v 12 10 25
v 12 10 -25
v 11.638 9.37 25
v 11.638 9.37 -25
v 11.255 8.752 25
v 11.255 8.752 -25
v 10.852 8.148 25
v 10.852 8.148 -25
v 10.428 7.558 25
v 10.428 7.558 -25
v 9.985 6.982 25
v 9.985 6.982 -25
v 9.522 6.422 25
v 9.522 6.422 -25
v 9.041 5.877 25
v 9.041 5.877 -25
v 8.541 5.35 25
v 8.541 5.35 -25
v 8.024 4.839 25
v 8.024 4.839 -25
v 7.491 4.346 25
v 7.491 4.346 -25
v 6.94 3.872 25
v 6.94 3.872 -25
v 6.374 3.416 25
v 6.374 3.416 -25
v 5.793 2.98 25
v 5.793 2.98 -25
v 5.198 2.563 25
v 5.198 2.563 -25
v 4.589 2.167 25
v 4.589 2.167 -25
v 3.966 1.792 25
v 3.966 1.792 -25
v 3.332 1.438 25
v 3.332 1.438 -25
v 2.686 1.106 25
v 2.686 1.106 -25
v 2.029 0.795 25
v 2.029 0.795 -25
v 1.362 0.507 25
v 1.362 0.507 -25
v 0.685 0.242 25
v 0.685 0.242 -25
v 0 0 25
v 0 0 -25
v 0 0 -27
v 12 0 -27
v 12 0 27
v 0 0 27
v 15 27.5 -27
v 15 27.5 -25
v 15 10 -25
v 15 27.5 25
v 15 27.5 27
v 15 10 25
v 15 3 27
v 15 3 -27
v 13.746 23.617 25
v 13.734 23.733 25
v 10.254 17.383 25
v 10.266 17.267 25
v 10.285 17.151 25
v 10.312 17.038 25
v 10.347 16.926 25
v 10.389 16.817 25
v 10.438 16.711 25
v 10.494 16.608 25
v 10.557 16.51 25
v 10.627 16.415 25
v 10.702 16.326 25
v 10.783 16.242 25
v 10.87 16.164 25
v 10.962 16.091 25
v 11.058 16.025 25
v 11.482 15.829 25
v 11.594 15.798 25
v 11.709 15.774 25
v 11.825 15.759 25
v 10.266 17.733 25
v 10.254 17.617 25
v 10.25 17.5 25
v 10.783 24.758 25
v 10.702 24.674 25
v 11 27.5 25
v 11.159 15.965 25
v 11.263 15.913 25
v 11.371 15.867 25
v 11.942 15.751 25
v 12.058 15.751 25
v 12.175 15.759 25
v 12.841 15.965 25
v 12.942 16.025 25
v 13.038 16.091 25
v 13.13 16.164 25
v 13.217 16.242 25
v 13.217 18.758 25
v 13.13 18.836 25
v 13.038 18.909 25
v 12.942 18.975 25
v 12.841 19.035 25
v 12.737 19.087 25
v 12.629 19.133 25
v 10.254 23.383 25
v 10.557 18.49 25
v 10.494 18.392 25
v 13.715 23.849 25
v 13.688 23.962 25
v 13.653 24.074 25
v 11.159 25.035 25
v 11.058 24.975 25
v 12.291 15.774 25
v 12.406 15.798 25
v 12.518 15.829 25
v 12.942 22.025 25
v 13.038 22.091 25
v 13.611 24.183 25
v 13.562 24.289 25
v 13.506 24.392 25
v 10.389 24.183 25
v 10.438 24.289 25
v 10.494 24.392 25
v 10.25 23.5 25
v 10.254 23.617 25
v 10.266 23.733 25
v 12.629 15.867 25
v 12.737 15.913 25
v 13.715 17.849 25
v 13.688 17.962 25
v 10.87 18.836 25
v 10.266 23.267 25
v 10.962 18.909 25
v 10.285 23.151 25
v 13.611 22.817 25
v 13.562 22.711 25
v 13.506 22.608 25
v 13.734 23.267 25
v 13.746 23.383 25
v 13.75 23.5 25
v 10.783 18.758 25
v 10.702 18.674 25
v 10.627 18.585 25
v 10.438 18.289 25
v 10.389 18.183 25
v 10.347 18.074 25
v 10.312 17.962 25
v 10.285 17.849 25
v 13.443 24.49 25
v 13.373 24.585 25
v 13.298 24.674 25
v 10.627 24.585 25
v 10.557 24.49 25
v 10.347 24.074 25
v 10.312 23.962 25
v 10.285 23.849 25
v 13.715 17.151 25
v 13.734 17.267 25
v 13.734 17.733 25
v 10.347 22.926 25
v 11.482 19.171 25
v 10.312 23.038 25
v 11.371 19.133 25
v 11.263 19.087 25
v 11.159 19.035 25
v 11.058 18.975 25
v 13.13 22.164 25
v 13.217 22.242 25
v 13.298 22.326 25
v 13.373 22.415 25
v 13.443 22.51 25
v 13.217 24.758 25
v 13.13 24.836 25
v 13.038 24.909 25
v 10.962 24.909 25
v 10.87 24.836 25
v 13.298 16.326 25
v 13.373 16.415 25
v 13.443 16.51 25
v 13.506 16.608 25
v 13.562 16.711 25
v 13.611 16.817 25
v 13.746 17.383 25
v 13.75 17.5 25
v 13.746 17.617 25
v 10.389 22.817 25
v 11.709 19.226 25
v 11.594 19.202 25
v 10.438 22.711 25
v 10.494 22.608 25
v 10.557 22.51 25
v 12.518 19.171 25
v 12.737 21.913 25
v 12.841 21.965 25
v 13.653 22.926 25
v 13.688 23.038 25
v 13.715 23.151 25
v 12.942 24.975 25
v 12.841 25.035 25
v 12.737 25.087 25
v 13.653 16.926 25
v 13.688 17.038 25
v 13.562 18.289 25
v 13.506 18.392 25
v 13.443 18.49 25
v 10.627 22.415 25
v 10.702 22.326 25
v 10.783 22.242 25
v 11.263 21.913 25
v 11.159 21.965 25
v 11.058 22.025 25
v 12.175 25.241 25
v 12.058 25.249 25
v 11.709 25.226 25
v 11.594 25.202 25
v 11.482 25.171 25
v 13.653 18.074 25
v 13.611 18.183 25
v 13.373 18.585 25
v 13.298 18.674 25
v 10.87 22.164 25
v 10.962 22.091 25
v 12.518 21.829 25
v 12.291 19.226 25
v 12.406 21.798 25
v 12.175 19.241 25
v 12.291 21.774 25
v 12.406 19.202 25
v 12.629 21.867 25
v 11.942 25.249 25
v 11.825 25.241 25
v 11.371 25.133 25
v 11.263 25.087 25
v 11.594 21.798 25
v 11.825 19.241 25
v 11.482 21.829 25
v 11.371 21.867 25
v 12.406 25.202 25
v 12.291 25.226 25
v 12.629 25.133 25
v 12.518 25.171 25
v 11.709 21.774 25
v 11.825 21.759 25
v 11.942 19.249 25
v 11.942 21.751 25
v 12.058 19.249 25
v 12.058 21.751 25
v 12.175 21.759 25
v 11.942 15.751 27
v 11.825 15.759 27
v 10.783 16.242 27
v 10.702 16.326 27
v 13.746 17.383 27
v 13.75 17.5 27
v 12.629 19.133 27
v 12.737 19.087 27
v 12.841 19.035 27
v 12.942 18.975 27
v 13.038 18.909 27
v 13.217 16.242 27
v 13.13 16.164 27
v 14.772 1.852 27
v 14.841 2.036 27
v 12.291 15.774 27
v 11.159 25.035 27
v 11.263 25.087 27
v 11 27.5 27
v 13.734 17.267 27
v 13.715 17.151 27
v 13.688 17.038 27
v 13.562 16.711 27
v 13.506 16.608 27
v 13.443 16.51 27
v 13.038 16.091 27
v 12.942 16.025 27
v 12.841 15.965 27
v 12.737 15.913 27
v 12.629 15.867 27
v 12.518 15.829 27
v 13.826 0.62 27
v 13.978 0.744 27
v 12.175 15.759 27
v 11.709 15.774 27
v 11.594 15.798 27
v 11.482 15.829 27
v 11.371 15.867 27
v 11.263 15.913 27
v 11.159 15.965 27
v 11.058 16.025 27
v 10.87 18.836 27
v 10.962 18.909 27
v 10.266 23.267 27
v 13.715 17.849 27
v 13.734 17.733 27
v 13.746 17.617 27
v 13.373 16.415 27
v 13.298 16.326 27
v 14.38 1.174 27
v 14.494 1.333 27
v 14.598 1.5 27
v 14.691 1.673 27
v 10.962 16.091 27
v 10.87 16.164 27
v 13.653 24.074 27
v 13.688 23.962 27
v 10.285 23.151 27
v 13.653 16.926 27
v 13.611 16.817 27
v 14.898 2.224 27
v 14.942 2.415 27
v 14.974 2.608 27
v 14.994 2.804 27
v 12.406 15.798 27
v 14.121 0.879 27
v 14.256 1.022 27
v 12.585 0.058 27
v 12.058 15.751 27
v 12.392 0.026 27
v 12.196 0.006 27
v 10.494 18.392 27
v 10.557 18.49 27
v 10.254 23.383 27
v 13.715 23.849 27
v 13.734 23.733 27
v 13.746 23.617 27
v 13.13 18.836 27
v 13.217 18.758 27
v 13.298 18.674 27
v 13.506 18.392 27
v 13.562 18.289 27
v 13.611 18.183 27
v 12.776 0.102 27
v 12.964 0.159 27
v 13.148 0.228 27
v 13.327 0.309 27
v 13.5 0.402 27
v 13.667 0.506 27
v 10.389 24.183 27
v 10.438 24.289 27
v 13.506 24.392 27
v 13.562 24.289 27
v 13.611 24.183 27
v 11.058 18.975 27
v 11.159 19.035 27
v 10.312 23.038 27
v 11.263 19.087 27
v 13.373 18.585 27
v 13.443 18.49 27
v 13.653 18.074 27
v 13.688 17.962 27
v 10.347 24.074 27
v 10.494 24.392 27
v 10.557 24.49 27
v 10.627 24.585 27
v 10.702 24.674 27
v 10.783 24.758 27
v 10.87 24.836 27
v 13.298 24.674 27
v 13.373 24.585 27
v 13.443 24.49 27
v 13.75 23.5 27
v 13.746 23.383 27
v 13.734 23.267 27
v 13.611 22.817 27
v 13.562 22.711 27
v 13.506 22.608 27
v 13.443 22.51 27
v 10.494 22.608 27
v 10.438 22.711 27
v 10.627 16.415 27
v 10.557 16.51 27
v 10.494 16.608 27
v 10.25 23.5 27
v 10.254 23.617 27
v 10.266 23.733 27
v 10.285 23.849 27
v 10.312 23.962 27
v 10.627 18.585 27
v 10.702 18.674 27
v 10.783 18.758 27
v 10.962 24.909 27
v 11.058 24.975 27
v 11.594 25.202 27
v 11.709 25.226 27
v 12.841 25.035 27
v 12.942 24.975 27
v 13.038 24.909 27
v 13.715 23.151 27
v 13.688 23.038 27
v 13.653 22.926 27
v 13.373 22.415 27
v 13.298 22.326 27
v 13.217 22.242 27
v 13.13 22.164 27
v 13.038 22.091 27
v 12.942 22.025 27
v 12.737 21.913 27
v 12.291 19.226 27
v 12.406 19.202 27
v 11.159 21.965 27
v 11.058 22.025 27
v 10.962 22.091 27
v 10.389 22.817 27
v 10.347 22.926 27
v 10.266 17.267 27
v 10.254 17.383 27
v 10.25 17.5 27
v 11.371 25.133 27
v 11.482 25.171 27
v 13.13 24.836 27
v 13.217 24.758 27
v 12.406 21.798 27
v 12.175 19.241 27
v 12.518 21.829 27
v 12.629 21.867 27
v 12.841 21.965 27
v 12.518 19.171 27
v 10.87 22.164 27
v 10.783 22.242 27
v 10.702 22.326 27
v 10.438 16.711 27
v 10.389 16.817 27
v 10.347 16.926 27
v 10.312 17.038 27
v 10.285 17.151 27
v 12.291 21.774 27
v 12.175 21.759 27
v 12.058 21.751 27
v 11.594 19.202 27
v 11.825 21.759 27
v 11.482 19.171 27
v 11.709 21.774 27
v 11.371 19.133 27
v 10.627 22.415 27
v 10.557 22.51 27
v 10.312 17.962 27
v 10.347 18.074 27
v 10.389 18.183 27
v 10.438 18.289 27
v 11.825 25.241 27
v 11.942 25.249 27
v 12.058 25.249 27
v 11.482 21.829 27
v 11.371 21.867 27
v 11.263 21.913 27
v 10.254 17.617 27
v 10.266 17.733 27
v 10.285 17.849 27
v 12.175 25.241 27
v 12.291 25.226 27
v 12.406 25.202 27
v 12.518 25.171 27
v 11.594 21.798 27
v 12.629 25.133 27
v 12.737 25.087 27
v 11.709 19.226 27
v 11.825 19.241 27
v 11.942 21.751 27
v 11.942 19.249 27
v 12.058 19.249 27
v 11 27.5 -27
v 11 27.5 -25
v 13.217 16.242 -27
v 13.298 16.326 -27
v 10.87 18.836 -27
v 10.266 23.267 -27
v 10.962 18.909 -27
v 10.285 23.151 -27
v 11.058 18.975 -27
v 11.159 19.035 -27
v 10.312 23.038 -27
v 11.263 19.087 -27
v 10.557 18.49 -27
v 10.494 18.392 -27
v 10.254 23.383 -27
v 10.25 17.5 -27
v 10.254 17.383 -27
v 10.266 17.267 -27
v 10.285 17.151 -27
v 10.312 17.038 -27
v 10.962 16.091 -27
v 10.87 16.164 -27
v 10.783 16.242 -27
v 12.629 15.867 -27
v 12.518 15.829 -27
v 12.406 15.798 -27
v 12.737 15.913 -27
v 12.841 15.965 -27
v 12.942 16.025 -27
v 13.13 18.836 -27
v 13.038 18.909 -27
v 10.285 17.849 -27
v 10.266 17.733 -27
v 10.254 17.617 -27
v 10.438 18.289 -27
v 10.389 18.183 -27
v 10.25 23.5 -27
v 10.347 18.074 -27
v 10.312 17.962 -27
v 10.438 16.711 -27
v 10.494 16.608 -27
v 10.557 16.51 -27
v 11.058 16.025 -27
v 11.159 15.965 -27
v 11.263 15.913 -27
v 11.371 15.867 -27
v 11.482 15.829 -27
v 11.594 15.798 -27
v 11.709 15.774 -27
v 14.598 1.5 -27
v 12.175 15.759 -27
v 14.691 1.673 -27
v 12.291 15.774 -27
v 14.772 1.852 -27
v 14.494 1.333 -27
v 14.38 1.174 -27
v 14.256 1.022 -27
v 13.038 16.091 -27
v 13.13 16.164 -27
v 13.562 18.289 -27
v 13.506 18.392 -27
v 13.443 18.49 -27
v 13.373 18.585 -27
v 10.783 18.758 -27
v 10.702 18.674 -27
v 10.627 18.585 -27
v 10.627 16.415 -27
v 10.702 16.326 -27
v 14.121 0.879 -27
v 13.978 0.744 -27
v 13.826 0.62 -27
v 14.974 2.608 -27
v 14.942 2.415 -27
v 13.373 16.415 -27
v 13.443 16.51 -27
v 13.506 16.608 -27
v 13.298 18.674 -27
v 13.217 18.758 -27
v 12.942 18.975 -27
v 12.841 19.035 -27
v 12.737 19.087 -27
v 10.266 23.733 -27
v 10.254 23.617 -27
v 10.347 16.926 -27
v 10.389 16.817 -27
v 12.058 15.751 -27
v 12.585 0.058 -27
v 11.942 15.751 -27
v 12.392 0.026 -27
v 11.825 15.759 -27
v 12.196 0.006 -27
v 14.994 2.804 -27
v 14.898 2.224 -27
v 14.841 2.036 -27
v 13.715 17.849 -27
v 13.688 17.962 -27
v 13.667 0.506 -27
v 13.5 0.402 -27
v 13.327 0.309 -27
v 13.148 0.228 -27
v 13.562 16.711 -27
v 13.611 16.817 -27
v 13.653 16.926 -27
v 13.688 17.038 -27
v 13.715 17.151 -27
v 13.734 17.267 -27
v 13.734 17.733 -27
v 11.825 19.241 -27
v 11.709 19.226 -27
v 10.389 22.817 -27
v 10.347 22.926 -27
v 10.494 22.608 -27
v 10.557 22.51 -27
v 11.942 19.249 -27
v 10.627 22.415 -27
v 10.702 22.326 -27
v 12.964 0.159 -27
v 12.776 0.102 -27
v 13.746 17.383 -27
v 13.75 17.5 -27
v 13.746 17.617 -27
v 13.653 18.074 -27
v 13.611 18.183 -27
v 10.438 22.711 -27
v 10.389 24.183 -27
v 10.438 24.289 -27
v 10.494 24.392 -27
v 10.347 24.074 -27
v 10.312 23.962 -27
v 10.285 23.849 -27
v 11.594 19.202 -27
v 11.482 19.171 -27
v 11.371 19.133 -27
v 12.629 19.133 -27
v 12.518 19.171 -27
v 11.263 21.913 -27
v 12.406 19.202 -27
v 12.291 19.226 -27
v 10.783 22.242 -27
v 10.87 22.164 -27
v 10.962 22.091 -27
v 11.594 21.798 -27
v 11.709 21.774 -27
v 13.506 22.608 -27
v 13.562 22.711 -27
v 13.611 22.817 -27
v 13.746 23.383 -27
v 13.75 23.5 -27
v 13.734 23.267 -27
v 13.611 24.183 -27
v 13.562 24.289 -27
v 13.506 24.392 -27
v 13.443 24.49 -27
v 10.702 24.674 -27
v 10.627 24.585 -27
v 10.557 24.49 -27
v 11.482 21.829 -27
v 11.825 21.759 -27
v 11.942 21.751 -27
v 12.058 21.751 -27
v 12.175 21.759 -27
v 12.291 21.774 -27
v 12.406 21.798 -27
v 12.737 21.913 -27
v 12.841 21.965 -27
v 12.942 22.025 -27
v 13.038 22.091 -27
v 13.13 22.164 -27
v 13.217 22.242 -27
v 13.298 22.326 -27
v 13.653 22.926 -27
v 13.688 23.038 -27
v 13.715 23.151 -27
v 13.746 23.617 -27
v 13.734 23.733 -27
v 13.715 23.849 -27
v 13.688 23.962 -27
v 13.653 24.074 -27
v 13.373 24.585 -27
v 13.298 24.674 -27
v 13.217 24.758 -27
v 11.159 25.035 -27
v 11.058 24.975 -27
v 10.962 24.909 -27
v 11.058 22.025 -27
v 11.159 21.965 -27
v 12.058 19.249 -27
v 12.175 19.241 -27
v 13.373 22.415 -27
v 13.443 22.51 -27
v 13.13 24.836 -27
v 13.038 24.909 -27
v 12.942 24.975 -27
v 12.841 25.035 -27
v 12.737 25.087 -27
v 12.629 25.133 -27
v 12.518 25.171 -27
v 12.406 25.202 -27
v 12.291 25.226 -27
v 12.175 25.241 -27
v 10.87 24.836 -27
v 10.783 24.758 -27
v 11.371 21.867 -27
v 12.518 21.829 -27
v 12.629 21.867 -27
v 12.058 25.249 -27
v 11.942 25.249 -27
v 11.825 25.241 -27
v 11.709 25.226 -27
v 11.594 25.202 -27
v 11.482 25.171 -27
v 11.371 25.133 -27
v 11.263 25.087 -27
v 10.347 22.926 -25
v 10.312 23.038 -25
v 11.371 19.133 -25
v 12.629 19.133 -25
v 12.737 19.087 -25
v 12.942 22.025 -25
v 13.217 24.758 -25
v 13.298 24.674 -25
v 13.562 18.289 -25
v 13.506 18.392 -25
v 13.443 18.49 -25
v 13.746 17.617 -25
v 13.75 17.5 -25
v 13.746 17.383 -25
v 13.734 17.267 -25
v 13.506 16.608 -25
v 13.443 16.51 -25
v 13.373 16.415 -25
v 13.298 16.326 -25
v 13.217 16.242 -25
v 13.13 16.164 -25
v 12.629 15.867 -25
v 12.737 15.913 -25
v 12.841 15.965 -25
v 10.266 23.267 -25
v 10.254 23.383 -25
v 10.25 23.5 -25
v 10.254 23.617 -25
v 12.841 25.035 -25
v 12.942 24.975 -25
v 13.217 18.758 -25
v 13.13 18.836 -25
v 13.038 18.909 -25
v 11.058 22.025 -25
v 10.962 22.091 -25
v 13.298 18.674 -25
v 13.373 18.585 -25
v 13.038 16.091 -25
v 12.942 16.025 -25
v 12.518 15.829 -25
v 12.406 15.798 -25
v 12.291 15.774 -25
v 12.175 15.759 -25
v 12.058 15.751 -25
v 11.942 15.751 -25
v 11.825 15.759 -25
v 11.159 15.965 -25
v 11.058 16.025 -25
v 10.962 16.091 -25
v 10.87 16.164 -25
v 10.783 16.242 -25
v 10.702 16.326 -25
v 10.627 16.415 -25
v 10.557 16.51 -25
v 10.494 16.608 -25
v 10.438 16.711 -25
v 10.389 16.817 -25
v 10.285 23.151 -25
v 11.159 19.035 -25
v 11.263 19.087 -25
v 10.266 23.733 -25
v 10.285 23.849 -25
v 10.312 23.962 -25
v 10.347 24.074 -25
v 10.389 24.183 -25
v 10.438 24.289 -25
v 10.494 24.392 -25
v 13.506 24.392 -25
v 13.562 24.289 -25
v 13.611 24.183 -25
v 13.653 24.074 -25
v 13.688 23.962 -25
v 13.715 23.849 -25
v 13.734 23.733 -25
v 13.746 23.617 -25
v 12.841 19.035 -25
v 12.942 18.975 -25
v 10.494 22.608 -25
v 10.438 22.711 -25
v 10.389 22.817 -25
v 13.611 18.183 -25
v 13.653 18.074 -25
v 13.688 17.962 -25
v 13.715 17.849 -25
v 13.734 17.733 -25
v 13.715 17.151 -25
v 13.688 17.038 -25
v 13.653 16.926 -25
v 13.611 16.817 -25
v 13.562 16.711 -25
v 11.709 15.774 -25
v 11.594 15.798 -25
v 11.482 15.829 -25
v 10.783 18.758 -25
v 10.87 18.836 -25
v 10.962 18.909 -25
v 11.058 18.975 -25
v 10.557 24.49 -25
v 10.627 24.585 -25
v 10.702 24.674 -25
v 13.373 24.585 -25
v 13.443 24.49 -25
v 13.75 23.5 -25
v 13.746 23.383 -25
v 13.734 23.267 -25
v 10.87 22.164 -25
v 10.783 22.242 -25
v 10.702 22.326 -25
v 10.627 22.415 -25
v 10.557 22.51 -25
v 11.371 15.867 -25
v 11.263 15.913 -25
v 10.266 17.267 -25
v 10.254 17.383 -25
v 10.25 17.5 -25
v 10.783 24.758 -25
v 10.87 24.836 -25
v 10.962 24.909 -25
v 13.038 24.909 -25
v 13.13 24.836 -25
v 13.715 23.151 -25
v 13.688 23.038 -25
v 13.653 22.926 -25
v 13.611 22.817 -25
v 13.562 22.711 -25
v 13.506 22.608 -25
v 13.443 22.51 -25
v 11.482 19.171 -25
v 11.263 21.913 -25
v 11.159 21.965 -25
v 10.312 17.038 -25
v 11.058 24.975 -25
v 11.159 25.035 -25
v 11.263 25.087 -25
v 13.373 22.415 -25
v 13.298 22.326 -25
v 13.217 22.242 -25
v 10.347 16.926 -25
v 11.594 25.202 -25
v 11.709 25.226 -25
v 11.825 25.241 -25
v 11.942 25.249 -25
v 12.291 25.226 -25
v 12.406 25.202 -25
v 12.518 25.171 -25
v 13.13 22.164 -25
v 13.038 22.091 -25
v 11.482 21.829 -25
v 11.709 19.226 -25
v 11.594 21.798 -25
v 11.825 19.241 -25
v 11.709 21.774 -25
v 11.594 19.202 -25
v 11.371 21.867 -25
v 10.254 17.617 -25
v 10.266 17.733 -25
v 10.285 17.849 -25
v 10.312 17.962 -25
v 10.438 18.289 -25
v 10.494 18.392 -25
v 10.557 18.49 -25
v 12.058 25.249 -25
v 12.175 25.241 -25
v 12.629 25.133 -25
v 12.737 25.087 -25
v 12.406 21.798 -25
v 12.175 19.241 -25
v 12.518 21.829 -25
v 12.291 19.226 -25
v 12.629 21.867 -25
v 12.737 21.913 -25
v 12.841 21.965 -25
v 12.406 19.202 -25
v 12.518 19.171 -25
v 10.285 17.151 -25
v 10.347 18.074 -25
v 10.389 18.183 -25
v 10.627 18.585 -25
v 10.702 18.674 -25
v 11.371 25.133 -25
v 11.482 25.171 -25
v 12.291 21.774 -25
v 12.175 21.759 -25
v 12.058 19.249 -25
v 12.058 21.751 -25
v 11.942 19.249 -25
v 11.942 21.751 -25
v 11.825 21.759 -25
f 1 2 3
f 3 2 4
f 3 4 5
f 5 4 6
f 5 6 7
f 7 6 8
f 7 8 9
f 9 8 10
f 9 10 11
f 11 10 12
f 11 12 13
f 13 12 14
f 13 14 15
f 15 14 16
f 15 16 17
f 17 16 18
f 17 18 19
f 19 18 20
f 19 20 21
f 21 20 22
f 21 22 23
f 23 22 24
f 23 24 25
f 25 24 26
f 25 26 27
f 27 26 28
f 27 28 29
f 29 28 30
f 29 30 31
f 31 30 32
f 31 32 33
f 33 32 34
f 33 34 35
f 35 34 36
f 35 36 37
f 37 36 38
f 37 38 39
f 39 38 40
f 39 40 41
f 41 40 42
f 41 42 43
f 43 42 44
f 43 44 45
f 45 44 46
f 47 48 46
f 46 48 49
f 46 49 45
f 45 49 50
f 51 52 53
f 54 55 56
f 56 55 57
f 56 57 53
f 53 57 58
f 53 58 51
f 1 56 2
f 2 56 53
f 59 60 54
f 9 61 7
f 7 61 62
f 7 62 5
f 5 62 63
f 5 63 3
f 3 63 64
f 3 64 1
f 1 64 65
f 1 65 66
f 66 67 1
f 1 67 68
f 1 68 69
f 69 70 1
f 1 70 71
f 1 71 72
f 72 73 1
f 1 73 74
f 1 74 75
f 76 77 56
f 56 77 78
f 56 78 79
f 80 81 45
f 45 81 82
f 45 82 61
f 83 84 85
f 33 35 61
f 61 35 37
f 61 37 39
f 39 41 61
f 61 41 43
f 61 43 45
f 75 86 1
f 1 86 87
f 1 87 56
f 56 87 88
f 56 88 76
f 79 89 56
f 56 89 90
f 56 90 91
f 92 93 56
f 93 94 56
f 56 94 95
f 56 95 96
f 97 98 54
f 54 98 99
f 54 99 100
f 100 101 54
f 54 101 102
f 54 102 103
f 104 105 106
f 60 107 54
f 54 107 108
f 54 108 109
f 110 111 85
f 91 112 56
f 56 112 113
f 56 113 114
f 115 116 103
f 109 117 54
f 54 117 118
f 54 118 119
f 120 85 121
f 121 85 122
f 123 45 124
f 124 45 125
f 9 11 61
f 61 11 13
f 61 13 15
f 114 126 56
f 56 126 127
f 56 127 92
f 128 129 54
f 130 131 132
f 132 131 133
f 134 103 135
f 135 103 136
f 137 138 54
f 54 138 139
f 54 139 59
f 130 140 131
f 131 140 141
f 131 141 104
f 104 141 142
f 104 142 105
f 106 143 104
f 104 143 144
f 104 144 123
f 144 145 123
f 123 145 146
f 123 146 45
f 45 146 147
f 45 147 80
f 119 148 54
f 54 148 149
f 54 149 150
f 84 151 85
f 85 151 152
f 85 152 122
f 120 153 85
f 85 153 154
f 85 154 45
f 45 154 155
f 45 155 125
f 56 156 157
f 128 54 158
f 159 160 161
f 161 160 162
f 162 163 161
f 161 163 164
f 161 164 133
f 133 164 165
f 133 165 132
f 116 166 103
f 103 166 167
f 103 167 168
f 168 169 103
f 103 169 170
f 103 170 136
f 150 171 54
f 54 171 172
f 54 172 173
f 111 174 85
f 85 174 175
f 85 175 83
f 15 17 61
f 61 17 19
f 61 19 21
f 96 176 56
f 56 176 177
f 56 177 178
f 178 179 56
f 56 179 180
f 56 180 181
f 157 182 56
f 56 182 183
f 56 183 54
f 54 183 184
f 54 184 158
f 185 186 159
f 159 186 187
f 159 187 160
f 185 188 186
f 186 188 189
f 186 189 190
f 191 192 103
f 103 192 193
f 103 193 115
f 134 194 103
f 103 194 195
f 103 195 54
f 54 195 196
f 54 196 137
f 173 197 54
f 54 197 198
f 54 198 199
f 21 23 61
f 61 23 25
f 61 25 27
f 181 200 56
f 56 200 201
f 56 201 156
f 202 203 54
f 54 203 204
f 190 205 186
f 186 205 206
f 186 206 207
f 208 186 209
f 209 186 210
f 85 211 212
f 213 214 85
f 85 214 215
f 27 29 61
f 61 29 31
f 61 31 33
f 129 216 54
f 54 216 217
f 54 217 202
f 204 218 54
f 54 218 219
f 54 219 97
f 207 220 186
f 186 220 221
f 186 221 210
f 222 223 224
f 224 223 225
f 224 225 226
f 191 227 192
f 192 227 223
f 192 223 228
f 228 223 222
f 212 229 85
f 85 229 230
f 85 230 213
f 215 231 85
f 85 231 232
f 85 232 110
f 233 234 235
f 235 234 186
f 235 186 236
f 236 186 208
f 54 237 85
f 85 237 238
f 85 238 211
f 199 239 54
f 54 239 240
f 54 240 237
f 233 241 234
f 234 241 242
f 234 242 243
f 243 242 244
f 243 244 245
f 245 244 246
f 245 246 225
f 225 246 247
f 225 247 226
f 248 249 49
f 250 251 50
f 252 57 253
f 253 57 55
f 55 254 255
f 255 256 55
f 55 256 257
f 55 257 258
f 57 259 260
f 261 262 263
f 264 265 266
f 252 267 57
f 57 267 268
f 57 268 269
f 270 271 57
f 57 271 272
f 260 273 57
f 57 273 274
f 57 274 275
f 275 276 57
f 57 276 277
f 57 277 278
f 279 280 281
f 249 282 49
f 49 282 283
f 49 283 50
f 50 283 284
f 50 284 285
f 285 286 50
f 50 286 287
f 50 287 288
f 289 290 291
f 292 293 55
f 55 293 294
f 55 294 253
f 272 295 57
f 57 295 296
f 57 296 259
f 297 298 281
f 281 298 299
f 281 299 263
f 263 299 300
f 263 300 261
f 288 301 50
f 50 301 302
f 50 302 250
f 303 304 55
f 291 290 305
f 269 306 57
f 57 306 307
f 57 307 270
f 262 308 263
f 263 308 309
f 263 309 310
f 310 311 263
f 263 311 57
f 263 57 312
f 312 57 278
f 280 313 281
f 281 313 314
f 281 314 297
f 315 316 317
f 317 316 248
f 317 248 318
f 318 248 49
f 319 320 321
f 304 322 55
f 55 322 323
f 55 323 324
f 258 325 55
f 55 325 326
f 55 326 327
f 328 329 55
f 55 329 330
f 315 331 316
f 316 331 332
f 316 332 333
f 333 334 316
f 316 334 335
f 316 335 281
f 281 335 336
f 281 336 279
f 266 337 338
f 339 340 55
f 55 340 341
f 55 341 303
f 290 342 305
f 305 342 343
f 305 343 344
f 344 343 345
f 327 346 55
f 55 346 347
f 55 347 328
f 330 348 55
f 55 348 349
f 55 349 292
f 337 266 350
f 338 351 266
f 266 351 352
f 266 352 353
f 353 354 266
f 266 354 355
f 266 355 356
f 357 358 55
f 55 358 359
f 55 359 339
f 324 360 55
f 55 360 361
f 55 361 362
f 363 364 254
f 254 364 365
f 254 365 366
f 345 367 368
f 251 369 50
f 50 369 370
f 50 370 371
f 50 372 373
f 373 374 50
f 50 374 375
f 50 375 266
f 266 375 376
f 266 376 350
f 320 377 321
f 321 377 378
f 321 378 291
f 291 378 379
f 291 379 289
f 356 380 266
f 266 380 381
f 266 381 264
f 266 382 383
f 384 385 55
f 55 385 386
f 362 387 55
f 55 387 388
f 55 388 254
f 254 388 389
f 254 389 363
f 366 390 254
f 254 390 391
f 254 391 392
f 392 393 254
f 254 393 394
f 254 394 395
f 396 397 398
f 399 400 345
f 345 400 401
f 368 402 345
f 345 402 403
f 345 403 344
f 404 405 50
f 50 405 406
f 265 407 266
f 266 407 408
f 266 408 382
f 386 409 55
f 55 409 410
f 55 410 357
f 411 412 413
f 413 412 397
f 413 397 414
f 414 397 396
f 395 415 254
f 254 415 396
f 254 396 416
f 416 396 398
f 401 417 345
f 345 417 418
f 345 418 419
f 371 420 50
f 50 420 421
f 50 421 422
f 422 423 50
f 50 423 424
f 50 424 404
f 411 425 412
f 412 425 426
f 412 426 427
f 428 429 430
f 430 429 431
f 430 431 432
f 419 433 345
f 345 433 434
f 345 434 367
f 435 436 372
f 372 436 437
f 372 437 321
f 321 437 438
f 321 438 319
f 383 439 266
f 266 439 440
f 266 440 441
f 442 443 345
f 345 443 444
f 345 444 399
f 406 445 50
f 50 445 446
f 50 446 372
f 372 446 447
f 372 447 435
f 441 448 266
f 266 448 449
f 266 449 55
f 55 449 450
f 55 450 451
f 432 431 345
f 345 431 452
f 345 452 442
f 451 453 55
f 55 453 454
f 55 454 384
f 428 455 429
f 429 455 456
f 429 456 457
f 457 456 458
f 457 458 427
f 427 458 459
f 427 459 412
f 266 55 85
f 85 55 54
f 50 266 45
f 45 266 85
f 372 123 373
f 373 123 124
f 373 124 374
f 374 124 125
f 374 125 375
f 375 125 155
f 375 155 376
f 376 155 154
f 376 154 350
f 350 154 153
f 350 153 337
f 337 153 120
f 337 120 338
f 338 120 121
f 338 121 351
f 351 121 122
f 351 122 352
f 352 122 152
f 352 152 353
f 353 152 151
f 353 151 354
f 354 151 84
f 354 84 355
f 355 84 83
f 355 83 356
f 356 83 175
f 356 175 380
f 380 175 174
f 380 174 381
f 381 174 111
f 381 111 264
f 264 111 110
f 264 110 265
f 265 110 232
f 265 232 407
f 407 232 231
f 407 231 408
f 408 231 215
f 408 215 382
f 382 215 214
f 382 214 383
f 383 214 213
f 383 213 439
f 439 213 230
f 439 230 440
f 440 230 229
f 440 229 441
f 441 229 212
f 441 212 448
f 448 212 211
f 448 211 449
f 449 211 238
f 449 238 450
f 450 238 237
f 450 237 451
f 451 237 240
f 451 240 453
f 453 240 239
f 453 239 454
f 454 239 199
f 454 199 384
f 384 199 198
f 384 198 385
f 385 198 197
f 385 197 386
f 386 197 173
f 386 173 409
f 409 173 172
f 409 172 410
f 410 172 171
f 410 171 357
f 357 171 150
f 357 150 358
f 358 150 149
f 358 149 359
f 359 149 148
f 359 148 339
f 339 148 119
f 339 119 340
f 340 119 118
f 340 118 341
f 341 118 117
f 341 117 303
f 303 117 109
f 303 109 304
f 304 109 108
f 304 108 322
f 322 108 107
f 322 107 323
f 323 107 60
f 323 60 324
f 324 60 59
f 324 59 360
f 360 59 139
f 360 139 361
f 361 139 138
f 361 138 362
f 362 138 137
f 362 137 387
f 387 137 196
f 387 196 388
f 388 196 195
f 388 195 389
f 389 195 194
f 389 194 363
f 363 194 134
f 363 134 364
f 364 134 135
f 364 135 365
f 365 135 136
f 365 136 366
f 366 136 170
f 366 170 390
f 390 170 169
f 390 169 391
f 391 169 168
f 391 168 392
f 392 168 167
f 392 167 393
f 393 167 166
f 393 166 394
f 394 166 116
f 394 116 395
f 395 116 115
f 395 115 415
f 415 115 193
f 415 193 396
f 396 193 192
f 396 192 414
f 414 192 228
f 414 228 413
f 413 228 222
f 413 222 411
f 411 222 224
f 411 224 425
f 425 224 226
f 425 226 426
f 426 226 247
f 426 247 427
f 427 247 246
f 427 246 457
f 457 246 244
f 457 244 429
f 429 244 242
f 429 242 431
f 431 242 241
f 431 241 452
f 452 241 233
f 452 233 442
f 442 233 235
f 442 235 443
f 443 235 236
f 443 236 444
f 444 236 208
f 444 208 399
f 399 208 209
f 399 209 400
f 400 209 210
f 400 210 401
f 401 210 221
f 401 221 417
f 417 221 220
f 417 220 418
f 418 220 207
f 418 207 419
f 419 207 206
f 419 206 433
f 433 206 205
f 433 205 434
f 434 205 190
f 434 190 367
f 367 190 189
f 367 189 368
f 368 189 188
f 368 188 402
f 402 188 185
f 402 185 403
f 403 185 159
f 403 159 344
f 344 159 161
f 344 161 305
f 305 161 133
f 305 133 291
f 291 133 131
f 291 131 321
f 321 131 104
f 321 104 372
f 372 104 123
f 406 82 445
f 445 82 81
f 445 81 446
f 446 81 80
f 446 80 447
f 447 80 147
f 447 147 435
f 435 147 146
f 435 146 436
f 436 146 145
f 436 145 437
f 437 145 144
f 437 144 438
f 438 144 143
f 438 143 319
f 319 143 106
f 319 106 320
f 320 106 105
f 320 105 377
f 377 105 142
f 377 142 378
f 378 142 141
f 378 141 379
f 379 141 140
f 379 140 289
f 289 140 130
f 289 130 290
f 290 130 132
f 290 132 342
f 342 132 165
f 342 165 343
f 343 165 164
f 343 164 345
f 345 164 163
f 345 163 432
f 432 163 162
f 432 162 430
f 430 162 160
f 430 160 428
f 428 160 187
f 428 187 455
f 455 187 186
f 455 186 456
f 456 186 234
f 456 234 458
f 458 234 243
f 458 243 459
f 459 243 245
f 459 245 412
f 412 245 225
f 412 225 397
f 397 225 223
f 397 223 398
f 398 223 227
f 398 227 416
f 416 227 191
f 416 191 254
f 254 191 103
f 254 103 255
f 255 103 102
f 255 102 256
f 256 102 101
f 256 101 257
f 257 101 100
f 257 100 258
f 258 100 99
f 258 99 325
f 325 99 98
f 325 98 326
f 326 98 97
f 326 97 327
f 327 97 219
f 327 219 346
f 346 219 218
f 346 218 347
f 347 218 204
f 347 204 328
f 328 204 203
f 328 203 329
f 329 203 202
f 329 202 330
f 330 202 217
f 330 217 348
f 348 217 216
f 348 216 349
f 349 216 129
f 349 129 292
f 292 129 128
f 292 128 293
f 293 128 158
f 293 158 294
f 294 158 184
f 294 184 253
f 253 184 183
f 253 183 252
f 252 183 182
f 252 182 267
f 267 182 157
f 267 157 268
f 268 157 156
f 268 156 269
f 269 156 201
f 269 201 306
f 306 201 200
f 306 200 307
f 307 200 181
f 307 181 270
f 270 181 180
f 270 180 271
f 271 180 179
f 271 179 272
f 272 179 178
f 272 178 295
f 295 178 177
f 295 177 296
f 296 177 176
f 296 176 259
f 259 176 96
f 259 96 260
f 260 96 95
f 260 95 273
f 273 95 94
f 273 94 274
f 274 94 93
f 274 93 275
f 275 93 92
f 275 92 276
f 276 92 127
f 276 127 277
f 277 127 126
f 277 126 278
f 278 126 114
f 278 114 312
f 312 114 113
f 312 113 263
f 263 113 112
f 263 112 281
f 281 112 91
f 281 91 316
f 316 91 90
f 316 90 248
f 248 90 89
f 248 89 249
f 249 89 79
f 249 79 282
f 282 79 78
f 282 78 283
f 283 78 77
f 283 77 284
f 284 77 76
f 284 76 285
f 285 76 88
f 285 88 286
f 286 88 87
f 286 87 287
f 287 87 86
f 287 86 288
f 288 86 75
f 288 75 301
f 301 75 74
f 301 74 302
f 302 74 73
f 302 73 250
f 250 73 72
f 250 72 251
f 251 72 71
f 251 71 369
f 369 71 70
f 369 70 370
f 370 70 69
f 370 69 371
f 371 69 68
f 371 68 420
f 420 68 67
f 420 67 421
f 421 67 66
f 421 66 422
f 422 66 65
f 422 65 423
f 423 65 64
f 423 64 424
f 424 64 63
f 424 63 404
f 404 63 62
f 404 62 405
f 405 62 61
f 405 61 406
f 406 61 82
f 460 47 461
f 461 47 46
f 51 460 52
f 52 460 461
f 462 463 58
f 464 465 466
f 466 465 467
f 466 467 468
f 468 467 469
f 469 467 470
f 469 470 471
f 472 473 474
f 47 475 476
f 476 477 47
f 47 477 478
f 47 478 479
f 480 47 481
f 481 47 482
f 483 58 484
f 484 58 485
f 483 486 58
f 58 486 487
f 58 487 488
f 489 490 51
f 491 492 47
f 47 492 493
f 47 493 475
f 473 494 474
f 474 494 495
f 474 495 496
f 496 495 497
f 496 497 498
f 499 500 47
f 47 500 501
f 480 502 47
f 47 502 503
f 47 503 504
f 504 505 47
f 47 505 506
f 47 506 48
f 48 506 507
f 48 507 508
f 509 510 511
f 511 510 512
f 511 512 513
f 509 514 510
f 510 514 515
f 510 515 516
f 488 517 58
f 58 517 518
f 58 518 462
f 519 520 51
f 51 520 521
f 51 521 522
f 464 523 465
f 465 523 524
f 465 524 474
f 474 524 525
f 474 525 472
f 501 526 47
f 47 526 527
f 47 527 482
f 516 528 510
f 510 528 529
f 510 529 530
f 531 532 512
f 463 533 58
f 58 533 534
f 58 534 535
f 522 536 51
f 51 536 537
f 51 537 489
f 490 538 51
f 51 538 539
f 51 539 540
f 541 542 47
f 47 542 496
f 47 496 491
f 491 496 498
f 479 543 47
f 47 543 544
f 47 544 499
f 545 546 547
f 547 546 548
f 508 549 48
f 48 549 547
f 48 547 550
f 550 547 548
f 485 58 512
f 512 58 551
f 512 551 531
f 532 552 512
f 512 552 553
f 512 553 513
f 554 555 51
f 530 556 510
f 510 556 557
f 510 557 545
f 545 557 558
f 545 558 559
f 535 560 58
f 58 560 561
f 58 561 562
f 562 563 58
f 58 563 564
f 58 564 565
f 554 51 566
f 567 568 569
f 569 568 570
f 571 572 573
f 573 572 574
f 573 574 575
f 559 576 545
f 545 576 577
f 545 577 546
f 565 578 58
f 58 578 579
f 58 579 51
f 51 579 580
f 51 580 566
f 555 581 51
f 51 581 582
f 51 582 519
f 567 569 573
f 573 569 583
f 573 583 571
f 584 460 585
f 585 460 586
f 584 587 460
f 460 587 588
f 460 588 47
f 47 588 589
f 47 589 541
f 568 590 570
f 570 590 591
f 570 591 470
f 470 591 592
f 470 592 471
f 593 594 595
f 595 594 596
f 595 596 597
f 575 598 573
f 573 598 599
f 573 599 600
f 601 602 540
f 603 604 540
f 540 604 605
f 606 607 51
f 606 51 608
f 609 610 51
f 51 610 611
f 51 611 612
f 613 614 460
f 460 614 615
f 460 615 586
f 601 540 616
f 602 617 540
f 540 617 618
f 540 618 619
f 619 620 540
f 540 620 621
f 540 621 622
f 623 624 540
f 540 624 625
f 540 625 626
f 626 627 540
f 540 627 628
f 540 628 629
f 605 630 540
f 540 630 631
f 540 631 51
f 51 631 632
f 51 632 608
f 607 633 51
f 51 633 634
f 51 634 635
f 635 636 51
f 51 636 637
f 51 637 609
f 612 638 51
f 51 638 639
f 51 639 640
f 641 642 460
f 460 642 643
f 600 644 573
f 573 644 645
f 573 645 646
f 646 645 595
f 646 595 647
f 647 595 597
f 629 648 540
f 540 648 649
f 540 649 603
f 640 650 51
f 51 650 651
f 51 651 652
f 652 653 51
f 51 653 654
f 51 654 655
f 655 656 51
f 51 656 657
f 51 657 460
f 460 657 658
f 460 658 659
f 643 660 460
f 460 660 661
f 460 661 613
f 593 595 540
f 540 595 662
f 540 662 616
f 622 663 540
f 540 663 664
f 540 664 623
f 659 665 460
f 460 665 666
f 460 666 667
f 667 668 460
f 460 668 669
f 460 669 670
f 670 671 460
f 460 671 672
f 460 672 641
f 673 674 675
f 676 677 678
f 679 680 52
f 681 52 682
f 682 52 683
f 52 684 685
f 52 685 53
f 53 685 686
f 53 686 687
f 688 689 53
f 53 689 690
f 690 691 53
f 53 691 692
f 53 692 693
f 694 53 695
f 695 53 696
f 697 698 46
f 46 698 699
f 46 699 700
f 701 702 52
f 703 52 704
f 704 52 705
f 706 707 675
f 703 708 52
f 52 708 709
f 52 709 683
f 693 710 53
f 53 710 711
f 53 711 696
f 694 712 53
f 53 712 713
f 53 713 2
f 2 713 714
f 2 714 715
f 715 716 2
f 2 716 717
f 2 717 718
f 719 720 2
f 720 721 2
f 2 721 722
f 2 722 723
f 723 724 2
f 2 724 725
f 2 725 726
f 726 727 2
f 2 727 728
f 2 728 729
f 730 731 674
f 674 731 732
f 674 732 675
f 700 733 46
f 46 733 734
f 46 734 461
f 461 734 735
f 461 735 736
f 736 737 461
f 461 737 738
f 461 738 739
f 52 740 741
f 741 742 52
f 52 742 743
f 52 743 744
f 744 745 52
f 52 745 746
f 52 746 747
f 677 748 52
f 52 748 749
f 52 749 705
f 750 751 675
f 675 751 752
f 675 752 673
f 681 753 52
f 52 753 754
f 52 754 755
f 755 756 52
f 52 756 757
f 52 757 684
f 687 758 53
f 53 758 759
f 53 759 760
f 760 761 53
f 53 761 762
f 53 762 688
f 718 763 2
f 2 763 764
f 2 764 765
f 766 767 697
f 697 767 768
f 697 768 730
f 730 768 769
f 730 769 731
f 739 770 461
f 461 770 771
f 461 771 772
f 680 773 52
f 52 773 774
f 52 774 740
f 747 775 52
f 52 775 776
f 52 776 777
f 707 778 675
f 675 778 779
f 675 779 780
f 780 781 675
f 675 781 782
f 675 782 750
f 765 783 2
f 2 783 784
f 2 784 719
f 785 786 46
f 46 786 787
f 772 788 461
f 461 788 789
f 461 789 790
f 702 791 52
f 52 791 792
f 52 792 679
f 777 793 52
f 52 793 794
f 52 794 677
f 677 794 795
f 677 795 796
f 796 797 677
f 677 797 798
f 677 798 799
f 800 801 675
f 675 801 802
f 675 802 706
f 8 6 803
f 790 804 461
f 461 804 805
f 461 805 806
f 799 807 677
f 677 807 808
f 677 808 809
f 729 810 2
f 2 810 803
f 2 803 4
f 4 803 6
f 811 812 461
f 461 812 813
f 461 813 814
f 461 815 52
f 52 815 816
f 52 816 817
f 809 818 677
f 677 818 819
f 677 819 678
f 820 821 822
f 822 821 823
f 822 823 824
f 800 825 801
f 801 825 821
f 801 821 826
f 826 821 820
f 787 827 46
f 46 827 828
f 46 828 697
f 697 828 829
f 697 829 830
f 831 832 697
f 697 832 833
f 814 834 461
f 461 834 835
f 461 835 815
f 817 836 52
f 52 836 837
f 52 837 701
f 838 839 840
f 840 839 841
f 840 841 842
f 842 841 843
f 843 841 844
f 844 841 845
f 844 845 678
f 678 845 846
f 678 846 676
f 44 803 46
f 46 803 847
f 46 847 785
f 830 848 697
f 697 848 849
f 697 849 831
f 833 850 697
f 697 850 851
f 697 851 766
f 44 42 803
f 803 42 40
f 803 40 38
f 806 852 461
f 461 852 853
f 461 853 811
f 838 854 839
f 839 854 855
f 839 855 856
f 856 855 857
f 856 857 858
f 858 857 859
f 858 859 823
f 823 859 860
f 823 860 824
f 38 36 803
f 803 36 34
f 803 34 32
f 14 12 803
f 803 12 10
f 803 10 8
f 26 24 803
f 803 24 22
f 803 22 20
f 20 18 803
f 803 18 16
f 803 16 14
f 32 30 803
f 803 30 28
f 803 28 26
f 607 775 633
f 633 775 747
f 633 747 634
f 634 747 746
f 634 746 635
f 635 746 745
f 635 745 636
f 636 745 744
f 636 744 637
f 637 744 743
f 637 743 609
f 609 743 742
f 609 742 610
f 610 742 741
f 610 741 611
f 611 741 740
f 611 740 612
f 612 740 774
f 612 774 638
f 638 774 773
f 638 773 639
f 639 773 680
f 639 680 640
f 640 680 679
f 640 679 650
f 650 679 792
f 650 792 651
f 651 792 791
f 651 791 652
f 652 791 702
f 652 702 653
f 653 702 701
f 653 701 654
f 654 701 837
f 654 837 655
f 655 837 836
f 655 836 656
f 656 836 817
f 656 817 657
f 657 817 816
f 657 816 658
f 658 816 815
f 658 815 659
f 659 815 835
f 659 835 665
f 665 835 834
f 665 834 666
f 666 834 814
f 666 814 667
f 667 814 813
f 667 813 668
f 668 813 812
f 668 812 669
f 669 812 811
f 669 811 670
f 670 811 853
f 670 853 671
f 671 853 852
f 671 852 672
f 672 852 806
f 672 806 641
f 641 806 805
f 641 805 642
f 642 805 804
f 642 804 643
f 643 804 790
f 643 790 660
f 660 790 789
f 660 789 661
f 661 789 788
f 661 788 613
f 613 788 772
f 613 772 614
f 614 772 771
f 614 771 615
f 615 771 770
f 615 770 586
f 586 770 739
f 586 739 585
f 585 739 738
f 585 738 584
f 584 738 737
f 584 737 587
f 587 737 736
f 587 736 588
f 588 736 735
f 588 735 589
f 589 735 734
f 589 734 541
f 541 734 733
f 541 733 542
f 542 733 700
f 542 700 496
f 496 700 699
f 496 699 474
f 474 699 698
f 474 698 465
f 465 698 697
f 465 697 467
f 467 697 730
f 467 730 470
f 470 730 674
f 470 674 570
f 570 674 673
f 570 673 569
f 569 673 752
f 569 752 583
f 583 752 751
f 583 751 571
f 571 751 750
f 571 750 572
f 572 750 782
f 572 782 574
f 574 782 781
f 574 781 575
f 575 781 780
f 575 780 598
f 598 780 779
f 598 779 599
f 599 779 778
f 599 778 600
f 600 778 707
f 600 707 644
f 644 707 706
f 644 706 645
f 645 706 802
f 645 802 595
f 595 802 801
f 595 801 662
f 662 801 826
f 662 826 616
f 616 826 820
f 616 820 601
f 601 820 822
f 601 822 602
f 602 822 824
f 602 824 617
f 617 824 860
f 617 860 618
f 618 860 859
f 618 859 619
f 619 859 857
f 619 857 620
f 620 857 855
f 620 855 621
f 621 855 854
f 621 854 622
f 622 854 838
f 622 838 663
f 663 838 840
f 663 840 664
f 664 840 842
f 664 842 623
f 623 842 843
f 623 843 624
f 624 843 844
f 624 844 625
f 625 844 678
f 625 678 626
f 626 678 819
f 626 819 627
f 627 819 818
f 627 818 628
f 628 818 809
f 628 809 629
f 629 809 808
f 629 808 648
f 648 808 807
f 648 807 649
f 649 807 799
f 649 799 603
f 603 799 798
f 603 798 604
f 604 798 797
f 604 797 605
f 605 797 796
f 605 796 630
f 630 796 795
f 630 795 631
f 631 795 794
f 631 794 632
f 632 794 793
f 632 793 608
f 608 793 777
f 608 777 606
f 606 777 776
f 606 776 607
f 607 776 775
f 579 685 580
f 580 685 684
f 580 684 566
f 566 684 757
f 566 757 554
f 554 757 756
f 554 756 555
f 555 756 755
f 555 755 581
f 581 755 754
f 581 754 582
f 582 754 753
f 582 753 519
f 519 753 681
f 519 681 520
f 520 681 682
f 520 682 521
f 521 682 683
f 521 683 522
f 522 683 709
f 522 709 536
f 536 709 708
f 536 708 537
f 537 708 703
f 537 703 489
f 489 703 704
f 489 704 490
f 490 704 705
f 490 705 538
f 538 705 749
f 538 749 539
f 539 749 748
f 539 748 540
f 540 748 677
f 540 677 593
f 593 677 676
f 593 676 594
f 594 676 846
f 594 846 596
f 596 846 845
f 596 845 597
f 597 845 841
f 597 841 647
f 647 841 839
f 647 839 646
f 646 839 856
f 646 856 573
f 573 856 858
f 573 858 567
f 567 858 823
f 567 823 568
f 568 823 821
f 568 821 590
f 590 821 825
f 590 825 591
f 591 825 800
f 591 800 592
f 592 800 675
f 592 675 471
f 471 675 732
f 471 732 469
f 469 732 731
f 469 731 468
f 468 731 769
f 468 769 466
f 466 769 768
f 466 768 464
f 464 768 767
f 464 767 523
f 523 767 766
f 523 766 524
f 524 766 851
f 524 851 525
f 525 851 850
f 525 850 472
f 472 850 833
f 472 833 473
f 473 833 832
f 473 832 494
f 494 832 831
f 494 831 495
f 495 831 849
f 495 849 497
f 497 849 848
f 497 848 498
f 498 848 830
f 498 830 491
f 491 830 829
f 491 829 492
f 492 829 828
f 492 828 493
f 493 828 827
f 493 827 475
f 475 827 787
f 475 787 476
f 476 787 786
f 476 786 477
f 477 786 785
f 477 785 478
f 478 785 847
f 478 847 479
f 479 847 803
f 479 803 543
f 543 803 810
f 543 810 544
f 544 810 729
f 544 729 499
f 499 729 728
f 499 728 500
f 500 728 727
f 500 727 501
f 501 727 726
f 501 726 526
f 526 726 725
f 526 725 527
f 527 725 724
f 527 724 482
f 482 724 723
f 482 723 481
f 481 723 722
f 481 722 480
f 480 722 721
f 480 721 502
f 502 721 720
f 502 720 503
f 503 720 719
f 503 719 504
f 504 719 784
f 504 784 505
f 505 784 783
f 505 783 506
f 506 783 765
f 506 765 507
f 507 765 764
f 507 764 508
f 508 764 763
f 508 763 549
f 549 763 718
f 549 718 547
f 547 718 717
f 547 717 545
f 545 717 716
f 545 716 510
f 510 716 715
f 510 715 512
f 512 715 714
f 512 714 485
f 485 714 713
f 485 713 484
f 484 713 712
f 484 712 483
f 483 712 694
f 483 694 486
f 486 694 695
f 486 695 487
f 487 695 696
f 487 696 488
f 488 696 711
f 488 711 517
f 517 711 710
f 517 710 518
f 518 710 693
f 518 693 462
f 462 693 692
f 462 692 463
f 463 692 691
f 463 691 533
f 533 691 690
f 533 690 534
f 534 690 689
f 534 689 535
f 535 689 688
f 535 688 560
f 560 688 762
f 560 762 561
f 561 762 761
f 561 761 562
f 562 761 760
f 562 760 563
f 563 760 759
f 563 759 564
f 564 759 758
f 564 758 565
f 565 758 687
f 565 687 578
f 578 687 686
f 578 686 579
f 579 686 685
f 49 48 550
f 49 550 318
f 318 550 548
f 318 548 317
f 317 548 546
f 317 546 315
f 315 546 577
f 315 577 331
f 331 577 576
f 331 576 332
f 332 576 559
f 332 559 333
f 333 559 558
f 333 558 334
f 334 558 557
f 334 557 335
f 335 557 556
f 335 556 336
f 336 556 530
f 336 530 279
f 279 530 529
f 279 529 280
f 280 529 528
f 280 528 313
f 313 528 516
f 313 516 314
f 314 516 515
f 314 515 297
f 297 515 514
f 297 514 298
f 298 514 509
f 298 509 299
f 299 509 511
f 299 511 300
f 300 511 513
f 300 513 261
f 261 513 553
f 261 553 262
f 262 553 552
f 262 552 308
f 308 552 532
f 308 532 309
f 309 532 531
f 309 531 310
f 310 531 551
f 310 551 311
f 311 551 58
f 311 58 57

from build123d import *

# Parameters (mm, degrees)
BOSS_EXTRUDE1_DEPTH = 25
SKETCH2_R           = 1.75
BOSS_EXTRUDE2_DEPTH = 2
FILLET1_R           = 3


with BuildPart() as part:
    # Sketch1 → Boss-Extrude1 (new, symmetric)
    with BuildSketch(Plane.XY):
        with BuildLine():
            Line((0, 0), (15, 0))
            Line((15, 0), (15, 10))
            Line((15, 10), (12, 10))
            ThreePointArc((12, 10), (6.940286442, 3.871656269), (0, 0))
        make_face()
    extrude(amount=BOSS_EXTRUDE1_DEPTH, both=True)

    # Sketch2 → Boss-Extrude2 (add)
    with BuildSketch(Plane.XY.offset(25)):
        Polygon((15, 0), (15, 27.5), (11, 27.5), (0, 0), align=None)
        with Locations((12, 23.5)):
            Circle(SKETCH2_R, mode=Mode.SUBTRACT)
        with Locations((12, 17.5)):
            Circle(SKETCH2_R, mode=Mode.SUBTRACT)
    boss_extrude2 = extrude(amount=BOSS_EXTRUDE2_DEPTH)

    # Mirror1: Boss-Extrude2 across plane
    add(boss_extrude2.mirror(Plane.XY))

    # Fillet1
    fillet1_edges = [part.edges().sort_by_distance(p)[0] for p in [
        (15, 0, 0),
    ]]
    fillet(fillet1_edges, radius=FILLET1_R)


solid = part.part
